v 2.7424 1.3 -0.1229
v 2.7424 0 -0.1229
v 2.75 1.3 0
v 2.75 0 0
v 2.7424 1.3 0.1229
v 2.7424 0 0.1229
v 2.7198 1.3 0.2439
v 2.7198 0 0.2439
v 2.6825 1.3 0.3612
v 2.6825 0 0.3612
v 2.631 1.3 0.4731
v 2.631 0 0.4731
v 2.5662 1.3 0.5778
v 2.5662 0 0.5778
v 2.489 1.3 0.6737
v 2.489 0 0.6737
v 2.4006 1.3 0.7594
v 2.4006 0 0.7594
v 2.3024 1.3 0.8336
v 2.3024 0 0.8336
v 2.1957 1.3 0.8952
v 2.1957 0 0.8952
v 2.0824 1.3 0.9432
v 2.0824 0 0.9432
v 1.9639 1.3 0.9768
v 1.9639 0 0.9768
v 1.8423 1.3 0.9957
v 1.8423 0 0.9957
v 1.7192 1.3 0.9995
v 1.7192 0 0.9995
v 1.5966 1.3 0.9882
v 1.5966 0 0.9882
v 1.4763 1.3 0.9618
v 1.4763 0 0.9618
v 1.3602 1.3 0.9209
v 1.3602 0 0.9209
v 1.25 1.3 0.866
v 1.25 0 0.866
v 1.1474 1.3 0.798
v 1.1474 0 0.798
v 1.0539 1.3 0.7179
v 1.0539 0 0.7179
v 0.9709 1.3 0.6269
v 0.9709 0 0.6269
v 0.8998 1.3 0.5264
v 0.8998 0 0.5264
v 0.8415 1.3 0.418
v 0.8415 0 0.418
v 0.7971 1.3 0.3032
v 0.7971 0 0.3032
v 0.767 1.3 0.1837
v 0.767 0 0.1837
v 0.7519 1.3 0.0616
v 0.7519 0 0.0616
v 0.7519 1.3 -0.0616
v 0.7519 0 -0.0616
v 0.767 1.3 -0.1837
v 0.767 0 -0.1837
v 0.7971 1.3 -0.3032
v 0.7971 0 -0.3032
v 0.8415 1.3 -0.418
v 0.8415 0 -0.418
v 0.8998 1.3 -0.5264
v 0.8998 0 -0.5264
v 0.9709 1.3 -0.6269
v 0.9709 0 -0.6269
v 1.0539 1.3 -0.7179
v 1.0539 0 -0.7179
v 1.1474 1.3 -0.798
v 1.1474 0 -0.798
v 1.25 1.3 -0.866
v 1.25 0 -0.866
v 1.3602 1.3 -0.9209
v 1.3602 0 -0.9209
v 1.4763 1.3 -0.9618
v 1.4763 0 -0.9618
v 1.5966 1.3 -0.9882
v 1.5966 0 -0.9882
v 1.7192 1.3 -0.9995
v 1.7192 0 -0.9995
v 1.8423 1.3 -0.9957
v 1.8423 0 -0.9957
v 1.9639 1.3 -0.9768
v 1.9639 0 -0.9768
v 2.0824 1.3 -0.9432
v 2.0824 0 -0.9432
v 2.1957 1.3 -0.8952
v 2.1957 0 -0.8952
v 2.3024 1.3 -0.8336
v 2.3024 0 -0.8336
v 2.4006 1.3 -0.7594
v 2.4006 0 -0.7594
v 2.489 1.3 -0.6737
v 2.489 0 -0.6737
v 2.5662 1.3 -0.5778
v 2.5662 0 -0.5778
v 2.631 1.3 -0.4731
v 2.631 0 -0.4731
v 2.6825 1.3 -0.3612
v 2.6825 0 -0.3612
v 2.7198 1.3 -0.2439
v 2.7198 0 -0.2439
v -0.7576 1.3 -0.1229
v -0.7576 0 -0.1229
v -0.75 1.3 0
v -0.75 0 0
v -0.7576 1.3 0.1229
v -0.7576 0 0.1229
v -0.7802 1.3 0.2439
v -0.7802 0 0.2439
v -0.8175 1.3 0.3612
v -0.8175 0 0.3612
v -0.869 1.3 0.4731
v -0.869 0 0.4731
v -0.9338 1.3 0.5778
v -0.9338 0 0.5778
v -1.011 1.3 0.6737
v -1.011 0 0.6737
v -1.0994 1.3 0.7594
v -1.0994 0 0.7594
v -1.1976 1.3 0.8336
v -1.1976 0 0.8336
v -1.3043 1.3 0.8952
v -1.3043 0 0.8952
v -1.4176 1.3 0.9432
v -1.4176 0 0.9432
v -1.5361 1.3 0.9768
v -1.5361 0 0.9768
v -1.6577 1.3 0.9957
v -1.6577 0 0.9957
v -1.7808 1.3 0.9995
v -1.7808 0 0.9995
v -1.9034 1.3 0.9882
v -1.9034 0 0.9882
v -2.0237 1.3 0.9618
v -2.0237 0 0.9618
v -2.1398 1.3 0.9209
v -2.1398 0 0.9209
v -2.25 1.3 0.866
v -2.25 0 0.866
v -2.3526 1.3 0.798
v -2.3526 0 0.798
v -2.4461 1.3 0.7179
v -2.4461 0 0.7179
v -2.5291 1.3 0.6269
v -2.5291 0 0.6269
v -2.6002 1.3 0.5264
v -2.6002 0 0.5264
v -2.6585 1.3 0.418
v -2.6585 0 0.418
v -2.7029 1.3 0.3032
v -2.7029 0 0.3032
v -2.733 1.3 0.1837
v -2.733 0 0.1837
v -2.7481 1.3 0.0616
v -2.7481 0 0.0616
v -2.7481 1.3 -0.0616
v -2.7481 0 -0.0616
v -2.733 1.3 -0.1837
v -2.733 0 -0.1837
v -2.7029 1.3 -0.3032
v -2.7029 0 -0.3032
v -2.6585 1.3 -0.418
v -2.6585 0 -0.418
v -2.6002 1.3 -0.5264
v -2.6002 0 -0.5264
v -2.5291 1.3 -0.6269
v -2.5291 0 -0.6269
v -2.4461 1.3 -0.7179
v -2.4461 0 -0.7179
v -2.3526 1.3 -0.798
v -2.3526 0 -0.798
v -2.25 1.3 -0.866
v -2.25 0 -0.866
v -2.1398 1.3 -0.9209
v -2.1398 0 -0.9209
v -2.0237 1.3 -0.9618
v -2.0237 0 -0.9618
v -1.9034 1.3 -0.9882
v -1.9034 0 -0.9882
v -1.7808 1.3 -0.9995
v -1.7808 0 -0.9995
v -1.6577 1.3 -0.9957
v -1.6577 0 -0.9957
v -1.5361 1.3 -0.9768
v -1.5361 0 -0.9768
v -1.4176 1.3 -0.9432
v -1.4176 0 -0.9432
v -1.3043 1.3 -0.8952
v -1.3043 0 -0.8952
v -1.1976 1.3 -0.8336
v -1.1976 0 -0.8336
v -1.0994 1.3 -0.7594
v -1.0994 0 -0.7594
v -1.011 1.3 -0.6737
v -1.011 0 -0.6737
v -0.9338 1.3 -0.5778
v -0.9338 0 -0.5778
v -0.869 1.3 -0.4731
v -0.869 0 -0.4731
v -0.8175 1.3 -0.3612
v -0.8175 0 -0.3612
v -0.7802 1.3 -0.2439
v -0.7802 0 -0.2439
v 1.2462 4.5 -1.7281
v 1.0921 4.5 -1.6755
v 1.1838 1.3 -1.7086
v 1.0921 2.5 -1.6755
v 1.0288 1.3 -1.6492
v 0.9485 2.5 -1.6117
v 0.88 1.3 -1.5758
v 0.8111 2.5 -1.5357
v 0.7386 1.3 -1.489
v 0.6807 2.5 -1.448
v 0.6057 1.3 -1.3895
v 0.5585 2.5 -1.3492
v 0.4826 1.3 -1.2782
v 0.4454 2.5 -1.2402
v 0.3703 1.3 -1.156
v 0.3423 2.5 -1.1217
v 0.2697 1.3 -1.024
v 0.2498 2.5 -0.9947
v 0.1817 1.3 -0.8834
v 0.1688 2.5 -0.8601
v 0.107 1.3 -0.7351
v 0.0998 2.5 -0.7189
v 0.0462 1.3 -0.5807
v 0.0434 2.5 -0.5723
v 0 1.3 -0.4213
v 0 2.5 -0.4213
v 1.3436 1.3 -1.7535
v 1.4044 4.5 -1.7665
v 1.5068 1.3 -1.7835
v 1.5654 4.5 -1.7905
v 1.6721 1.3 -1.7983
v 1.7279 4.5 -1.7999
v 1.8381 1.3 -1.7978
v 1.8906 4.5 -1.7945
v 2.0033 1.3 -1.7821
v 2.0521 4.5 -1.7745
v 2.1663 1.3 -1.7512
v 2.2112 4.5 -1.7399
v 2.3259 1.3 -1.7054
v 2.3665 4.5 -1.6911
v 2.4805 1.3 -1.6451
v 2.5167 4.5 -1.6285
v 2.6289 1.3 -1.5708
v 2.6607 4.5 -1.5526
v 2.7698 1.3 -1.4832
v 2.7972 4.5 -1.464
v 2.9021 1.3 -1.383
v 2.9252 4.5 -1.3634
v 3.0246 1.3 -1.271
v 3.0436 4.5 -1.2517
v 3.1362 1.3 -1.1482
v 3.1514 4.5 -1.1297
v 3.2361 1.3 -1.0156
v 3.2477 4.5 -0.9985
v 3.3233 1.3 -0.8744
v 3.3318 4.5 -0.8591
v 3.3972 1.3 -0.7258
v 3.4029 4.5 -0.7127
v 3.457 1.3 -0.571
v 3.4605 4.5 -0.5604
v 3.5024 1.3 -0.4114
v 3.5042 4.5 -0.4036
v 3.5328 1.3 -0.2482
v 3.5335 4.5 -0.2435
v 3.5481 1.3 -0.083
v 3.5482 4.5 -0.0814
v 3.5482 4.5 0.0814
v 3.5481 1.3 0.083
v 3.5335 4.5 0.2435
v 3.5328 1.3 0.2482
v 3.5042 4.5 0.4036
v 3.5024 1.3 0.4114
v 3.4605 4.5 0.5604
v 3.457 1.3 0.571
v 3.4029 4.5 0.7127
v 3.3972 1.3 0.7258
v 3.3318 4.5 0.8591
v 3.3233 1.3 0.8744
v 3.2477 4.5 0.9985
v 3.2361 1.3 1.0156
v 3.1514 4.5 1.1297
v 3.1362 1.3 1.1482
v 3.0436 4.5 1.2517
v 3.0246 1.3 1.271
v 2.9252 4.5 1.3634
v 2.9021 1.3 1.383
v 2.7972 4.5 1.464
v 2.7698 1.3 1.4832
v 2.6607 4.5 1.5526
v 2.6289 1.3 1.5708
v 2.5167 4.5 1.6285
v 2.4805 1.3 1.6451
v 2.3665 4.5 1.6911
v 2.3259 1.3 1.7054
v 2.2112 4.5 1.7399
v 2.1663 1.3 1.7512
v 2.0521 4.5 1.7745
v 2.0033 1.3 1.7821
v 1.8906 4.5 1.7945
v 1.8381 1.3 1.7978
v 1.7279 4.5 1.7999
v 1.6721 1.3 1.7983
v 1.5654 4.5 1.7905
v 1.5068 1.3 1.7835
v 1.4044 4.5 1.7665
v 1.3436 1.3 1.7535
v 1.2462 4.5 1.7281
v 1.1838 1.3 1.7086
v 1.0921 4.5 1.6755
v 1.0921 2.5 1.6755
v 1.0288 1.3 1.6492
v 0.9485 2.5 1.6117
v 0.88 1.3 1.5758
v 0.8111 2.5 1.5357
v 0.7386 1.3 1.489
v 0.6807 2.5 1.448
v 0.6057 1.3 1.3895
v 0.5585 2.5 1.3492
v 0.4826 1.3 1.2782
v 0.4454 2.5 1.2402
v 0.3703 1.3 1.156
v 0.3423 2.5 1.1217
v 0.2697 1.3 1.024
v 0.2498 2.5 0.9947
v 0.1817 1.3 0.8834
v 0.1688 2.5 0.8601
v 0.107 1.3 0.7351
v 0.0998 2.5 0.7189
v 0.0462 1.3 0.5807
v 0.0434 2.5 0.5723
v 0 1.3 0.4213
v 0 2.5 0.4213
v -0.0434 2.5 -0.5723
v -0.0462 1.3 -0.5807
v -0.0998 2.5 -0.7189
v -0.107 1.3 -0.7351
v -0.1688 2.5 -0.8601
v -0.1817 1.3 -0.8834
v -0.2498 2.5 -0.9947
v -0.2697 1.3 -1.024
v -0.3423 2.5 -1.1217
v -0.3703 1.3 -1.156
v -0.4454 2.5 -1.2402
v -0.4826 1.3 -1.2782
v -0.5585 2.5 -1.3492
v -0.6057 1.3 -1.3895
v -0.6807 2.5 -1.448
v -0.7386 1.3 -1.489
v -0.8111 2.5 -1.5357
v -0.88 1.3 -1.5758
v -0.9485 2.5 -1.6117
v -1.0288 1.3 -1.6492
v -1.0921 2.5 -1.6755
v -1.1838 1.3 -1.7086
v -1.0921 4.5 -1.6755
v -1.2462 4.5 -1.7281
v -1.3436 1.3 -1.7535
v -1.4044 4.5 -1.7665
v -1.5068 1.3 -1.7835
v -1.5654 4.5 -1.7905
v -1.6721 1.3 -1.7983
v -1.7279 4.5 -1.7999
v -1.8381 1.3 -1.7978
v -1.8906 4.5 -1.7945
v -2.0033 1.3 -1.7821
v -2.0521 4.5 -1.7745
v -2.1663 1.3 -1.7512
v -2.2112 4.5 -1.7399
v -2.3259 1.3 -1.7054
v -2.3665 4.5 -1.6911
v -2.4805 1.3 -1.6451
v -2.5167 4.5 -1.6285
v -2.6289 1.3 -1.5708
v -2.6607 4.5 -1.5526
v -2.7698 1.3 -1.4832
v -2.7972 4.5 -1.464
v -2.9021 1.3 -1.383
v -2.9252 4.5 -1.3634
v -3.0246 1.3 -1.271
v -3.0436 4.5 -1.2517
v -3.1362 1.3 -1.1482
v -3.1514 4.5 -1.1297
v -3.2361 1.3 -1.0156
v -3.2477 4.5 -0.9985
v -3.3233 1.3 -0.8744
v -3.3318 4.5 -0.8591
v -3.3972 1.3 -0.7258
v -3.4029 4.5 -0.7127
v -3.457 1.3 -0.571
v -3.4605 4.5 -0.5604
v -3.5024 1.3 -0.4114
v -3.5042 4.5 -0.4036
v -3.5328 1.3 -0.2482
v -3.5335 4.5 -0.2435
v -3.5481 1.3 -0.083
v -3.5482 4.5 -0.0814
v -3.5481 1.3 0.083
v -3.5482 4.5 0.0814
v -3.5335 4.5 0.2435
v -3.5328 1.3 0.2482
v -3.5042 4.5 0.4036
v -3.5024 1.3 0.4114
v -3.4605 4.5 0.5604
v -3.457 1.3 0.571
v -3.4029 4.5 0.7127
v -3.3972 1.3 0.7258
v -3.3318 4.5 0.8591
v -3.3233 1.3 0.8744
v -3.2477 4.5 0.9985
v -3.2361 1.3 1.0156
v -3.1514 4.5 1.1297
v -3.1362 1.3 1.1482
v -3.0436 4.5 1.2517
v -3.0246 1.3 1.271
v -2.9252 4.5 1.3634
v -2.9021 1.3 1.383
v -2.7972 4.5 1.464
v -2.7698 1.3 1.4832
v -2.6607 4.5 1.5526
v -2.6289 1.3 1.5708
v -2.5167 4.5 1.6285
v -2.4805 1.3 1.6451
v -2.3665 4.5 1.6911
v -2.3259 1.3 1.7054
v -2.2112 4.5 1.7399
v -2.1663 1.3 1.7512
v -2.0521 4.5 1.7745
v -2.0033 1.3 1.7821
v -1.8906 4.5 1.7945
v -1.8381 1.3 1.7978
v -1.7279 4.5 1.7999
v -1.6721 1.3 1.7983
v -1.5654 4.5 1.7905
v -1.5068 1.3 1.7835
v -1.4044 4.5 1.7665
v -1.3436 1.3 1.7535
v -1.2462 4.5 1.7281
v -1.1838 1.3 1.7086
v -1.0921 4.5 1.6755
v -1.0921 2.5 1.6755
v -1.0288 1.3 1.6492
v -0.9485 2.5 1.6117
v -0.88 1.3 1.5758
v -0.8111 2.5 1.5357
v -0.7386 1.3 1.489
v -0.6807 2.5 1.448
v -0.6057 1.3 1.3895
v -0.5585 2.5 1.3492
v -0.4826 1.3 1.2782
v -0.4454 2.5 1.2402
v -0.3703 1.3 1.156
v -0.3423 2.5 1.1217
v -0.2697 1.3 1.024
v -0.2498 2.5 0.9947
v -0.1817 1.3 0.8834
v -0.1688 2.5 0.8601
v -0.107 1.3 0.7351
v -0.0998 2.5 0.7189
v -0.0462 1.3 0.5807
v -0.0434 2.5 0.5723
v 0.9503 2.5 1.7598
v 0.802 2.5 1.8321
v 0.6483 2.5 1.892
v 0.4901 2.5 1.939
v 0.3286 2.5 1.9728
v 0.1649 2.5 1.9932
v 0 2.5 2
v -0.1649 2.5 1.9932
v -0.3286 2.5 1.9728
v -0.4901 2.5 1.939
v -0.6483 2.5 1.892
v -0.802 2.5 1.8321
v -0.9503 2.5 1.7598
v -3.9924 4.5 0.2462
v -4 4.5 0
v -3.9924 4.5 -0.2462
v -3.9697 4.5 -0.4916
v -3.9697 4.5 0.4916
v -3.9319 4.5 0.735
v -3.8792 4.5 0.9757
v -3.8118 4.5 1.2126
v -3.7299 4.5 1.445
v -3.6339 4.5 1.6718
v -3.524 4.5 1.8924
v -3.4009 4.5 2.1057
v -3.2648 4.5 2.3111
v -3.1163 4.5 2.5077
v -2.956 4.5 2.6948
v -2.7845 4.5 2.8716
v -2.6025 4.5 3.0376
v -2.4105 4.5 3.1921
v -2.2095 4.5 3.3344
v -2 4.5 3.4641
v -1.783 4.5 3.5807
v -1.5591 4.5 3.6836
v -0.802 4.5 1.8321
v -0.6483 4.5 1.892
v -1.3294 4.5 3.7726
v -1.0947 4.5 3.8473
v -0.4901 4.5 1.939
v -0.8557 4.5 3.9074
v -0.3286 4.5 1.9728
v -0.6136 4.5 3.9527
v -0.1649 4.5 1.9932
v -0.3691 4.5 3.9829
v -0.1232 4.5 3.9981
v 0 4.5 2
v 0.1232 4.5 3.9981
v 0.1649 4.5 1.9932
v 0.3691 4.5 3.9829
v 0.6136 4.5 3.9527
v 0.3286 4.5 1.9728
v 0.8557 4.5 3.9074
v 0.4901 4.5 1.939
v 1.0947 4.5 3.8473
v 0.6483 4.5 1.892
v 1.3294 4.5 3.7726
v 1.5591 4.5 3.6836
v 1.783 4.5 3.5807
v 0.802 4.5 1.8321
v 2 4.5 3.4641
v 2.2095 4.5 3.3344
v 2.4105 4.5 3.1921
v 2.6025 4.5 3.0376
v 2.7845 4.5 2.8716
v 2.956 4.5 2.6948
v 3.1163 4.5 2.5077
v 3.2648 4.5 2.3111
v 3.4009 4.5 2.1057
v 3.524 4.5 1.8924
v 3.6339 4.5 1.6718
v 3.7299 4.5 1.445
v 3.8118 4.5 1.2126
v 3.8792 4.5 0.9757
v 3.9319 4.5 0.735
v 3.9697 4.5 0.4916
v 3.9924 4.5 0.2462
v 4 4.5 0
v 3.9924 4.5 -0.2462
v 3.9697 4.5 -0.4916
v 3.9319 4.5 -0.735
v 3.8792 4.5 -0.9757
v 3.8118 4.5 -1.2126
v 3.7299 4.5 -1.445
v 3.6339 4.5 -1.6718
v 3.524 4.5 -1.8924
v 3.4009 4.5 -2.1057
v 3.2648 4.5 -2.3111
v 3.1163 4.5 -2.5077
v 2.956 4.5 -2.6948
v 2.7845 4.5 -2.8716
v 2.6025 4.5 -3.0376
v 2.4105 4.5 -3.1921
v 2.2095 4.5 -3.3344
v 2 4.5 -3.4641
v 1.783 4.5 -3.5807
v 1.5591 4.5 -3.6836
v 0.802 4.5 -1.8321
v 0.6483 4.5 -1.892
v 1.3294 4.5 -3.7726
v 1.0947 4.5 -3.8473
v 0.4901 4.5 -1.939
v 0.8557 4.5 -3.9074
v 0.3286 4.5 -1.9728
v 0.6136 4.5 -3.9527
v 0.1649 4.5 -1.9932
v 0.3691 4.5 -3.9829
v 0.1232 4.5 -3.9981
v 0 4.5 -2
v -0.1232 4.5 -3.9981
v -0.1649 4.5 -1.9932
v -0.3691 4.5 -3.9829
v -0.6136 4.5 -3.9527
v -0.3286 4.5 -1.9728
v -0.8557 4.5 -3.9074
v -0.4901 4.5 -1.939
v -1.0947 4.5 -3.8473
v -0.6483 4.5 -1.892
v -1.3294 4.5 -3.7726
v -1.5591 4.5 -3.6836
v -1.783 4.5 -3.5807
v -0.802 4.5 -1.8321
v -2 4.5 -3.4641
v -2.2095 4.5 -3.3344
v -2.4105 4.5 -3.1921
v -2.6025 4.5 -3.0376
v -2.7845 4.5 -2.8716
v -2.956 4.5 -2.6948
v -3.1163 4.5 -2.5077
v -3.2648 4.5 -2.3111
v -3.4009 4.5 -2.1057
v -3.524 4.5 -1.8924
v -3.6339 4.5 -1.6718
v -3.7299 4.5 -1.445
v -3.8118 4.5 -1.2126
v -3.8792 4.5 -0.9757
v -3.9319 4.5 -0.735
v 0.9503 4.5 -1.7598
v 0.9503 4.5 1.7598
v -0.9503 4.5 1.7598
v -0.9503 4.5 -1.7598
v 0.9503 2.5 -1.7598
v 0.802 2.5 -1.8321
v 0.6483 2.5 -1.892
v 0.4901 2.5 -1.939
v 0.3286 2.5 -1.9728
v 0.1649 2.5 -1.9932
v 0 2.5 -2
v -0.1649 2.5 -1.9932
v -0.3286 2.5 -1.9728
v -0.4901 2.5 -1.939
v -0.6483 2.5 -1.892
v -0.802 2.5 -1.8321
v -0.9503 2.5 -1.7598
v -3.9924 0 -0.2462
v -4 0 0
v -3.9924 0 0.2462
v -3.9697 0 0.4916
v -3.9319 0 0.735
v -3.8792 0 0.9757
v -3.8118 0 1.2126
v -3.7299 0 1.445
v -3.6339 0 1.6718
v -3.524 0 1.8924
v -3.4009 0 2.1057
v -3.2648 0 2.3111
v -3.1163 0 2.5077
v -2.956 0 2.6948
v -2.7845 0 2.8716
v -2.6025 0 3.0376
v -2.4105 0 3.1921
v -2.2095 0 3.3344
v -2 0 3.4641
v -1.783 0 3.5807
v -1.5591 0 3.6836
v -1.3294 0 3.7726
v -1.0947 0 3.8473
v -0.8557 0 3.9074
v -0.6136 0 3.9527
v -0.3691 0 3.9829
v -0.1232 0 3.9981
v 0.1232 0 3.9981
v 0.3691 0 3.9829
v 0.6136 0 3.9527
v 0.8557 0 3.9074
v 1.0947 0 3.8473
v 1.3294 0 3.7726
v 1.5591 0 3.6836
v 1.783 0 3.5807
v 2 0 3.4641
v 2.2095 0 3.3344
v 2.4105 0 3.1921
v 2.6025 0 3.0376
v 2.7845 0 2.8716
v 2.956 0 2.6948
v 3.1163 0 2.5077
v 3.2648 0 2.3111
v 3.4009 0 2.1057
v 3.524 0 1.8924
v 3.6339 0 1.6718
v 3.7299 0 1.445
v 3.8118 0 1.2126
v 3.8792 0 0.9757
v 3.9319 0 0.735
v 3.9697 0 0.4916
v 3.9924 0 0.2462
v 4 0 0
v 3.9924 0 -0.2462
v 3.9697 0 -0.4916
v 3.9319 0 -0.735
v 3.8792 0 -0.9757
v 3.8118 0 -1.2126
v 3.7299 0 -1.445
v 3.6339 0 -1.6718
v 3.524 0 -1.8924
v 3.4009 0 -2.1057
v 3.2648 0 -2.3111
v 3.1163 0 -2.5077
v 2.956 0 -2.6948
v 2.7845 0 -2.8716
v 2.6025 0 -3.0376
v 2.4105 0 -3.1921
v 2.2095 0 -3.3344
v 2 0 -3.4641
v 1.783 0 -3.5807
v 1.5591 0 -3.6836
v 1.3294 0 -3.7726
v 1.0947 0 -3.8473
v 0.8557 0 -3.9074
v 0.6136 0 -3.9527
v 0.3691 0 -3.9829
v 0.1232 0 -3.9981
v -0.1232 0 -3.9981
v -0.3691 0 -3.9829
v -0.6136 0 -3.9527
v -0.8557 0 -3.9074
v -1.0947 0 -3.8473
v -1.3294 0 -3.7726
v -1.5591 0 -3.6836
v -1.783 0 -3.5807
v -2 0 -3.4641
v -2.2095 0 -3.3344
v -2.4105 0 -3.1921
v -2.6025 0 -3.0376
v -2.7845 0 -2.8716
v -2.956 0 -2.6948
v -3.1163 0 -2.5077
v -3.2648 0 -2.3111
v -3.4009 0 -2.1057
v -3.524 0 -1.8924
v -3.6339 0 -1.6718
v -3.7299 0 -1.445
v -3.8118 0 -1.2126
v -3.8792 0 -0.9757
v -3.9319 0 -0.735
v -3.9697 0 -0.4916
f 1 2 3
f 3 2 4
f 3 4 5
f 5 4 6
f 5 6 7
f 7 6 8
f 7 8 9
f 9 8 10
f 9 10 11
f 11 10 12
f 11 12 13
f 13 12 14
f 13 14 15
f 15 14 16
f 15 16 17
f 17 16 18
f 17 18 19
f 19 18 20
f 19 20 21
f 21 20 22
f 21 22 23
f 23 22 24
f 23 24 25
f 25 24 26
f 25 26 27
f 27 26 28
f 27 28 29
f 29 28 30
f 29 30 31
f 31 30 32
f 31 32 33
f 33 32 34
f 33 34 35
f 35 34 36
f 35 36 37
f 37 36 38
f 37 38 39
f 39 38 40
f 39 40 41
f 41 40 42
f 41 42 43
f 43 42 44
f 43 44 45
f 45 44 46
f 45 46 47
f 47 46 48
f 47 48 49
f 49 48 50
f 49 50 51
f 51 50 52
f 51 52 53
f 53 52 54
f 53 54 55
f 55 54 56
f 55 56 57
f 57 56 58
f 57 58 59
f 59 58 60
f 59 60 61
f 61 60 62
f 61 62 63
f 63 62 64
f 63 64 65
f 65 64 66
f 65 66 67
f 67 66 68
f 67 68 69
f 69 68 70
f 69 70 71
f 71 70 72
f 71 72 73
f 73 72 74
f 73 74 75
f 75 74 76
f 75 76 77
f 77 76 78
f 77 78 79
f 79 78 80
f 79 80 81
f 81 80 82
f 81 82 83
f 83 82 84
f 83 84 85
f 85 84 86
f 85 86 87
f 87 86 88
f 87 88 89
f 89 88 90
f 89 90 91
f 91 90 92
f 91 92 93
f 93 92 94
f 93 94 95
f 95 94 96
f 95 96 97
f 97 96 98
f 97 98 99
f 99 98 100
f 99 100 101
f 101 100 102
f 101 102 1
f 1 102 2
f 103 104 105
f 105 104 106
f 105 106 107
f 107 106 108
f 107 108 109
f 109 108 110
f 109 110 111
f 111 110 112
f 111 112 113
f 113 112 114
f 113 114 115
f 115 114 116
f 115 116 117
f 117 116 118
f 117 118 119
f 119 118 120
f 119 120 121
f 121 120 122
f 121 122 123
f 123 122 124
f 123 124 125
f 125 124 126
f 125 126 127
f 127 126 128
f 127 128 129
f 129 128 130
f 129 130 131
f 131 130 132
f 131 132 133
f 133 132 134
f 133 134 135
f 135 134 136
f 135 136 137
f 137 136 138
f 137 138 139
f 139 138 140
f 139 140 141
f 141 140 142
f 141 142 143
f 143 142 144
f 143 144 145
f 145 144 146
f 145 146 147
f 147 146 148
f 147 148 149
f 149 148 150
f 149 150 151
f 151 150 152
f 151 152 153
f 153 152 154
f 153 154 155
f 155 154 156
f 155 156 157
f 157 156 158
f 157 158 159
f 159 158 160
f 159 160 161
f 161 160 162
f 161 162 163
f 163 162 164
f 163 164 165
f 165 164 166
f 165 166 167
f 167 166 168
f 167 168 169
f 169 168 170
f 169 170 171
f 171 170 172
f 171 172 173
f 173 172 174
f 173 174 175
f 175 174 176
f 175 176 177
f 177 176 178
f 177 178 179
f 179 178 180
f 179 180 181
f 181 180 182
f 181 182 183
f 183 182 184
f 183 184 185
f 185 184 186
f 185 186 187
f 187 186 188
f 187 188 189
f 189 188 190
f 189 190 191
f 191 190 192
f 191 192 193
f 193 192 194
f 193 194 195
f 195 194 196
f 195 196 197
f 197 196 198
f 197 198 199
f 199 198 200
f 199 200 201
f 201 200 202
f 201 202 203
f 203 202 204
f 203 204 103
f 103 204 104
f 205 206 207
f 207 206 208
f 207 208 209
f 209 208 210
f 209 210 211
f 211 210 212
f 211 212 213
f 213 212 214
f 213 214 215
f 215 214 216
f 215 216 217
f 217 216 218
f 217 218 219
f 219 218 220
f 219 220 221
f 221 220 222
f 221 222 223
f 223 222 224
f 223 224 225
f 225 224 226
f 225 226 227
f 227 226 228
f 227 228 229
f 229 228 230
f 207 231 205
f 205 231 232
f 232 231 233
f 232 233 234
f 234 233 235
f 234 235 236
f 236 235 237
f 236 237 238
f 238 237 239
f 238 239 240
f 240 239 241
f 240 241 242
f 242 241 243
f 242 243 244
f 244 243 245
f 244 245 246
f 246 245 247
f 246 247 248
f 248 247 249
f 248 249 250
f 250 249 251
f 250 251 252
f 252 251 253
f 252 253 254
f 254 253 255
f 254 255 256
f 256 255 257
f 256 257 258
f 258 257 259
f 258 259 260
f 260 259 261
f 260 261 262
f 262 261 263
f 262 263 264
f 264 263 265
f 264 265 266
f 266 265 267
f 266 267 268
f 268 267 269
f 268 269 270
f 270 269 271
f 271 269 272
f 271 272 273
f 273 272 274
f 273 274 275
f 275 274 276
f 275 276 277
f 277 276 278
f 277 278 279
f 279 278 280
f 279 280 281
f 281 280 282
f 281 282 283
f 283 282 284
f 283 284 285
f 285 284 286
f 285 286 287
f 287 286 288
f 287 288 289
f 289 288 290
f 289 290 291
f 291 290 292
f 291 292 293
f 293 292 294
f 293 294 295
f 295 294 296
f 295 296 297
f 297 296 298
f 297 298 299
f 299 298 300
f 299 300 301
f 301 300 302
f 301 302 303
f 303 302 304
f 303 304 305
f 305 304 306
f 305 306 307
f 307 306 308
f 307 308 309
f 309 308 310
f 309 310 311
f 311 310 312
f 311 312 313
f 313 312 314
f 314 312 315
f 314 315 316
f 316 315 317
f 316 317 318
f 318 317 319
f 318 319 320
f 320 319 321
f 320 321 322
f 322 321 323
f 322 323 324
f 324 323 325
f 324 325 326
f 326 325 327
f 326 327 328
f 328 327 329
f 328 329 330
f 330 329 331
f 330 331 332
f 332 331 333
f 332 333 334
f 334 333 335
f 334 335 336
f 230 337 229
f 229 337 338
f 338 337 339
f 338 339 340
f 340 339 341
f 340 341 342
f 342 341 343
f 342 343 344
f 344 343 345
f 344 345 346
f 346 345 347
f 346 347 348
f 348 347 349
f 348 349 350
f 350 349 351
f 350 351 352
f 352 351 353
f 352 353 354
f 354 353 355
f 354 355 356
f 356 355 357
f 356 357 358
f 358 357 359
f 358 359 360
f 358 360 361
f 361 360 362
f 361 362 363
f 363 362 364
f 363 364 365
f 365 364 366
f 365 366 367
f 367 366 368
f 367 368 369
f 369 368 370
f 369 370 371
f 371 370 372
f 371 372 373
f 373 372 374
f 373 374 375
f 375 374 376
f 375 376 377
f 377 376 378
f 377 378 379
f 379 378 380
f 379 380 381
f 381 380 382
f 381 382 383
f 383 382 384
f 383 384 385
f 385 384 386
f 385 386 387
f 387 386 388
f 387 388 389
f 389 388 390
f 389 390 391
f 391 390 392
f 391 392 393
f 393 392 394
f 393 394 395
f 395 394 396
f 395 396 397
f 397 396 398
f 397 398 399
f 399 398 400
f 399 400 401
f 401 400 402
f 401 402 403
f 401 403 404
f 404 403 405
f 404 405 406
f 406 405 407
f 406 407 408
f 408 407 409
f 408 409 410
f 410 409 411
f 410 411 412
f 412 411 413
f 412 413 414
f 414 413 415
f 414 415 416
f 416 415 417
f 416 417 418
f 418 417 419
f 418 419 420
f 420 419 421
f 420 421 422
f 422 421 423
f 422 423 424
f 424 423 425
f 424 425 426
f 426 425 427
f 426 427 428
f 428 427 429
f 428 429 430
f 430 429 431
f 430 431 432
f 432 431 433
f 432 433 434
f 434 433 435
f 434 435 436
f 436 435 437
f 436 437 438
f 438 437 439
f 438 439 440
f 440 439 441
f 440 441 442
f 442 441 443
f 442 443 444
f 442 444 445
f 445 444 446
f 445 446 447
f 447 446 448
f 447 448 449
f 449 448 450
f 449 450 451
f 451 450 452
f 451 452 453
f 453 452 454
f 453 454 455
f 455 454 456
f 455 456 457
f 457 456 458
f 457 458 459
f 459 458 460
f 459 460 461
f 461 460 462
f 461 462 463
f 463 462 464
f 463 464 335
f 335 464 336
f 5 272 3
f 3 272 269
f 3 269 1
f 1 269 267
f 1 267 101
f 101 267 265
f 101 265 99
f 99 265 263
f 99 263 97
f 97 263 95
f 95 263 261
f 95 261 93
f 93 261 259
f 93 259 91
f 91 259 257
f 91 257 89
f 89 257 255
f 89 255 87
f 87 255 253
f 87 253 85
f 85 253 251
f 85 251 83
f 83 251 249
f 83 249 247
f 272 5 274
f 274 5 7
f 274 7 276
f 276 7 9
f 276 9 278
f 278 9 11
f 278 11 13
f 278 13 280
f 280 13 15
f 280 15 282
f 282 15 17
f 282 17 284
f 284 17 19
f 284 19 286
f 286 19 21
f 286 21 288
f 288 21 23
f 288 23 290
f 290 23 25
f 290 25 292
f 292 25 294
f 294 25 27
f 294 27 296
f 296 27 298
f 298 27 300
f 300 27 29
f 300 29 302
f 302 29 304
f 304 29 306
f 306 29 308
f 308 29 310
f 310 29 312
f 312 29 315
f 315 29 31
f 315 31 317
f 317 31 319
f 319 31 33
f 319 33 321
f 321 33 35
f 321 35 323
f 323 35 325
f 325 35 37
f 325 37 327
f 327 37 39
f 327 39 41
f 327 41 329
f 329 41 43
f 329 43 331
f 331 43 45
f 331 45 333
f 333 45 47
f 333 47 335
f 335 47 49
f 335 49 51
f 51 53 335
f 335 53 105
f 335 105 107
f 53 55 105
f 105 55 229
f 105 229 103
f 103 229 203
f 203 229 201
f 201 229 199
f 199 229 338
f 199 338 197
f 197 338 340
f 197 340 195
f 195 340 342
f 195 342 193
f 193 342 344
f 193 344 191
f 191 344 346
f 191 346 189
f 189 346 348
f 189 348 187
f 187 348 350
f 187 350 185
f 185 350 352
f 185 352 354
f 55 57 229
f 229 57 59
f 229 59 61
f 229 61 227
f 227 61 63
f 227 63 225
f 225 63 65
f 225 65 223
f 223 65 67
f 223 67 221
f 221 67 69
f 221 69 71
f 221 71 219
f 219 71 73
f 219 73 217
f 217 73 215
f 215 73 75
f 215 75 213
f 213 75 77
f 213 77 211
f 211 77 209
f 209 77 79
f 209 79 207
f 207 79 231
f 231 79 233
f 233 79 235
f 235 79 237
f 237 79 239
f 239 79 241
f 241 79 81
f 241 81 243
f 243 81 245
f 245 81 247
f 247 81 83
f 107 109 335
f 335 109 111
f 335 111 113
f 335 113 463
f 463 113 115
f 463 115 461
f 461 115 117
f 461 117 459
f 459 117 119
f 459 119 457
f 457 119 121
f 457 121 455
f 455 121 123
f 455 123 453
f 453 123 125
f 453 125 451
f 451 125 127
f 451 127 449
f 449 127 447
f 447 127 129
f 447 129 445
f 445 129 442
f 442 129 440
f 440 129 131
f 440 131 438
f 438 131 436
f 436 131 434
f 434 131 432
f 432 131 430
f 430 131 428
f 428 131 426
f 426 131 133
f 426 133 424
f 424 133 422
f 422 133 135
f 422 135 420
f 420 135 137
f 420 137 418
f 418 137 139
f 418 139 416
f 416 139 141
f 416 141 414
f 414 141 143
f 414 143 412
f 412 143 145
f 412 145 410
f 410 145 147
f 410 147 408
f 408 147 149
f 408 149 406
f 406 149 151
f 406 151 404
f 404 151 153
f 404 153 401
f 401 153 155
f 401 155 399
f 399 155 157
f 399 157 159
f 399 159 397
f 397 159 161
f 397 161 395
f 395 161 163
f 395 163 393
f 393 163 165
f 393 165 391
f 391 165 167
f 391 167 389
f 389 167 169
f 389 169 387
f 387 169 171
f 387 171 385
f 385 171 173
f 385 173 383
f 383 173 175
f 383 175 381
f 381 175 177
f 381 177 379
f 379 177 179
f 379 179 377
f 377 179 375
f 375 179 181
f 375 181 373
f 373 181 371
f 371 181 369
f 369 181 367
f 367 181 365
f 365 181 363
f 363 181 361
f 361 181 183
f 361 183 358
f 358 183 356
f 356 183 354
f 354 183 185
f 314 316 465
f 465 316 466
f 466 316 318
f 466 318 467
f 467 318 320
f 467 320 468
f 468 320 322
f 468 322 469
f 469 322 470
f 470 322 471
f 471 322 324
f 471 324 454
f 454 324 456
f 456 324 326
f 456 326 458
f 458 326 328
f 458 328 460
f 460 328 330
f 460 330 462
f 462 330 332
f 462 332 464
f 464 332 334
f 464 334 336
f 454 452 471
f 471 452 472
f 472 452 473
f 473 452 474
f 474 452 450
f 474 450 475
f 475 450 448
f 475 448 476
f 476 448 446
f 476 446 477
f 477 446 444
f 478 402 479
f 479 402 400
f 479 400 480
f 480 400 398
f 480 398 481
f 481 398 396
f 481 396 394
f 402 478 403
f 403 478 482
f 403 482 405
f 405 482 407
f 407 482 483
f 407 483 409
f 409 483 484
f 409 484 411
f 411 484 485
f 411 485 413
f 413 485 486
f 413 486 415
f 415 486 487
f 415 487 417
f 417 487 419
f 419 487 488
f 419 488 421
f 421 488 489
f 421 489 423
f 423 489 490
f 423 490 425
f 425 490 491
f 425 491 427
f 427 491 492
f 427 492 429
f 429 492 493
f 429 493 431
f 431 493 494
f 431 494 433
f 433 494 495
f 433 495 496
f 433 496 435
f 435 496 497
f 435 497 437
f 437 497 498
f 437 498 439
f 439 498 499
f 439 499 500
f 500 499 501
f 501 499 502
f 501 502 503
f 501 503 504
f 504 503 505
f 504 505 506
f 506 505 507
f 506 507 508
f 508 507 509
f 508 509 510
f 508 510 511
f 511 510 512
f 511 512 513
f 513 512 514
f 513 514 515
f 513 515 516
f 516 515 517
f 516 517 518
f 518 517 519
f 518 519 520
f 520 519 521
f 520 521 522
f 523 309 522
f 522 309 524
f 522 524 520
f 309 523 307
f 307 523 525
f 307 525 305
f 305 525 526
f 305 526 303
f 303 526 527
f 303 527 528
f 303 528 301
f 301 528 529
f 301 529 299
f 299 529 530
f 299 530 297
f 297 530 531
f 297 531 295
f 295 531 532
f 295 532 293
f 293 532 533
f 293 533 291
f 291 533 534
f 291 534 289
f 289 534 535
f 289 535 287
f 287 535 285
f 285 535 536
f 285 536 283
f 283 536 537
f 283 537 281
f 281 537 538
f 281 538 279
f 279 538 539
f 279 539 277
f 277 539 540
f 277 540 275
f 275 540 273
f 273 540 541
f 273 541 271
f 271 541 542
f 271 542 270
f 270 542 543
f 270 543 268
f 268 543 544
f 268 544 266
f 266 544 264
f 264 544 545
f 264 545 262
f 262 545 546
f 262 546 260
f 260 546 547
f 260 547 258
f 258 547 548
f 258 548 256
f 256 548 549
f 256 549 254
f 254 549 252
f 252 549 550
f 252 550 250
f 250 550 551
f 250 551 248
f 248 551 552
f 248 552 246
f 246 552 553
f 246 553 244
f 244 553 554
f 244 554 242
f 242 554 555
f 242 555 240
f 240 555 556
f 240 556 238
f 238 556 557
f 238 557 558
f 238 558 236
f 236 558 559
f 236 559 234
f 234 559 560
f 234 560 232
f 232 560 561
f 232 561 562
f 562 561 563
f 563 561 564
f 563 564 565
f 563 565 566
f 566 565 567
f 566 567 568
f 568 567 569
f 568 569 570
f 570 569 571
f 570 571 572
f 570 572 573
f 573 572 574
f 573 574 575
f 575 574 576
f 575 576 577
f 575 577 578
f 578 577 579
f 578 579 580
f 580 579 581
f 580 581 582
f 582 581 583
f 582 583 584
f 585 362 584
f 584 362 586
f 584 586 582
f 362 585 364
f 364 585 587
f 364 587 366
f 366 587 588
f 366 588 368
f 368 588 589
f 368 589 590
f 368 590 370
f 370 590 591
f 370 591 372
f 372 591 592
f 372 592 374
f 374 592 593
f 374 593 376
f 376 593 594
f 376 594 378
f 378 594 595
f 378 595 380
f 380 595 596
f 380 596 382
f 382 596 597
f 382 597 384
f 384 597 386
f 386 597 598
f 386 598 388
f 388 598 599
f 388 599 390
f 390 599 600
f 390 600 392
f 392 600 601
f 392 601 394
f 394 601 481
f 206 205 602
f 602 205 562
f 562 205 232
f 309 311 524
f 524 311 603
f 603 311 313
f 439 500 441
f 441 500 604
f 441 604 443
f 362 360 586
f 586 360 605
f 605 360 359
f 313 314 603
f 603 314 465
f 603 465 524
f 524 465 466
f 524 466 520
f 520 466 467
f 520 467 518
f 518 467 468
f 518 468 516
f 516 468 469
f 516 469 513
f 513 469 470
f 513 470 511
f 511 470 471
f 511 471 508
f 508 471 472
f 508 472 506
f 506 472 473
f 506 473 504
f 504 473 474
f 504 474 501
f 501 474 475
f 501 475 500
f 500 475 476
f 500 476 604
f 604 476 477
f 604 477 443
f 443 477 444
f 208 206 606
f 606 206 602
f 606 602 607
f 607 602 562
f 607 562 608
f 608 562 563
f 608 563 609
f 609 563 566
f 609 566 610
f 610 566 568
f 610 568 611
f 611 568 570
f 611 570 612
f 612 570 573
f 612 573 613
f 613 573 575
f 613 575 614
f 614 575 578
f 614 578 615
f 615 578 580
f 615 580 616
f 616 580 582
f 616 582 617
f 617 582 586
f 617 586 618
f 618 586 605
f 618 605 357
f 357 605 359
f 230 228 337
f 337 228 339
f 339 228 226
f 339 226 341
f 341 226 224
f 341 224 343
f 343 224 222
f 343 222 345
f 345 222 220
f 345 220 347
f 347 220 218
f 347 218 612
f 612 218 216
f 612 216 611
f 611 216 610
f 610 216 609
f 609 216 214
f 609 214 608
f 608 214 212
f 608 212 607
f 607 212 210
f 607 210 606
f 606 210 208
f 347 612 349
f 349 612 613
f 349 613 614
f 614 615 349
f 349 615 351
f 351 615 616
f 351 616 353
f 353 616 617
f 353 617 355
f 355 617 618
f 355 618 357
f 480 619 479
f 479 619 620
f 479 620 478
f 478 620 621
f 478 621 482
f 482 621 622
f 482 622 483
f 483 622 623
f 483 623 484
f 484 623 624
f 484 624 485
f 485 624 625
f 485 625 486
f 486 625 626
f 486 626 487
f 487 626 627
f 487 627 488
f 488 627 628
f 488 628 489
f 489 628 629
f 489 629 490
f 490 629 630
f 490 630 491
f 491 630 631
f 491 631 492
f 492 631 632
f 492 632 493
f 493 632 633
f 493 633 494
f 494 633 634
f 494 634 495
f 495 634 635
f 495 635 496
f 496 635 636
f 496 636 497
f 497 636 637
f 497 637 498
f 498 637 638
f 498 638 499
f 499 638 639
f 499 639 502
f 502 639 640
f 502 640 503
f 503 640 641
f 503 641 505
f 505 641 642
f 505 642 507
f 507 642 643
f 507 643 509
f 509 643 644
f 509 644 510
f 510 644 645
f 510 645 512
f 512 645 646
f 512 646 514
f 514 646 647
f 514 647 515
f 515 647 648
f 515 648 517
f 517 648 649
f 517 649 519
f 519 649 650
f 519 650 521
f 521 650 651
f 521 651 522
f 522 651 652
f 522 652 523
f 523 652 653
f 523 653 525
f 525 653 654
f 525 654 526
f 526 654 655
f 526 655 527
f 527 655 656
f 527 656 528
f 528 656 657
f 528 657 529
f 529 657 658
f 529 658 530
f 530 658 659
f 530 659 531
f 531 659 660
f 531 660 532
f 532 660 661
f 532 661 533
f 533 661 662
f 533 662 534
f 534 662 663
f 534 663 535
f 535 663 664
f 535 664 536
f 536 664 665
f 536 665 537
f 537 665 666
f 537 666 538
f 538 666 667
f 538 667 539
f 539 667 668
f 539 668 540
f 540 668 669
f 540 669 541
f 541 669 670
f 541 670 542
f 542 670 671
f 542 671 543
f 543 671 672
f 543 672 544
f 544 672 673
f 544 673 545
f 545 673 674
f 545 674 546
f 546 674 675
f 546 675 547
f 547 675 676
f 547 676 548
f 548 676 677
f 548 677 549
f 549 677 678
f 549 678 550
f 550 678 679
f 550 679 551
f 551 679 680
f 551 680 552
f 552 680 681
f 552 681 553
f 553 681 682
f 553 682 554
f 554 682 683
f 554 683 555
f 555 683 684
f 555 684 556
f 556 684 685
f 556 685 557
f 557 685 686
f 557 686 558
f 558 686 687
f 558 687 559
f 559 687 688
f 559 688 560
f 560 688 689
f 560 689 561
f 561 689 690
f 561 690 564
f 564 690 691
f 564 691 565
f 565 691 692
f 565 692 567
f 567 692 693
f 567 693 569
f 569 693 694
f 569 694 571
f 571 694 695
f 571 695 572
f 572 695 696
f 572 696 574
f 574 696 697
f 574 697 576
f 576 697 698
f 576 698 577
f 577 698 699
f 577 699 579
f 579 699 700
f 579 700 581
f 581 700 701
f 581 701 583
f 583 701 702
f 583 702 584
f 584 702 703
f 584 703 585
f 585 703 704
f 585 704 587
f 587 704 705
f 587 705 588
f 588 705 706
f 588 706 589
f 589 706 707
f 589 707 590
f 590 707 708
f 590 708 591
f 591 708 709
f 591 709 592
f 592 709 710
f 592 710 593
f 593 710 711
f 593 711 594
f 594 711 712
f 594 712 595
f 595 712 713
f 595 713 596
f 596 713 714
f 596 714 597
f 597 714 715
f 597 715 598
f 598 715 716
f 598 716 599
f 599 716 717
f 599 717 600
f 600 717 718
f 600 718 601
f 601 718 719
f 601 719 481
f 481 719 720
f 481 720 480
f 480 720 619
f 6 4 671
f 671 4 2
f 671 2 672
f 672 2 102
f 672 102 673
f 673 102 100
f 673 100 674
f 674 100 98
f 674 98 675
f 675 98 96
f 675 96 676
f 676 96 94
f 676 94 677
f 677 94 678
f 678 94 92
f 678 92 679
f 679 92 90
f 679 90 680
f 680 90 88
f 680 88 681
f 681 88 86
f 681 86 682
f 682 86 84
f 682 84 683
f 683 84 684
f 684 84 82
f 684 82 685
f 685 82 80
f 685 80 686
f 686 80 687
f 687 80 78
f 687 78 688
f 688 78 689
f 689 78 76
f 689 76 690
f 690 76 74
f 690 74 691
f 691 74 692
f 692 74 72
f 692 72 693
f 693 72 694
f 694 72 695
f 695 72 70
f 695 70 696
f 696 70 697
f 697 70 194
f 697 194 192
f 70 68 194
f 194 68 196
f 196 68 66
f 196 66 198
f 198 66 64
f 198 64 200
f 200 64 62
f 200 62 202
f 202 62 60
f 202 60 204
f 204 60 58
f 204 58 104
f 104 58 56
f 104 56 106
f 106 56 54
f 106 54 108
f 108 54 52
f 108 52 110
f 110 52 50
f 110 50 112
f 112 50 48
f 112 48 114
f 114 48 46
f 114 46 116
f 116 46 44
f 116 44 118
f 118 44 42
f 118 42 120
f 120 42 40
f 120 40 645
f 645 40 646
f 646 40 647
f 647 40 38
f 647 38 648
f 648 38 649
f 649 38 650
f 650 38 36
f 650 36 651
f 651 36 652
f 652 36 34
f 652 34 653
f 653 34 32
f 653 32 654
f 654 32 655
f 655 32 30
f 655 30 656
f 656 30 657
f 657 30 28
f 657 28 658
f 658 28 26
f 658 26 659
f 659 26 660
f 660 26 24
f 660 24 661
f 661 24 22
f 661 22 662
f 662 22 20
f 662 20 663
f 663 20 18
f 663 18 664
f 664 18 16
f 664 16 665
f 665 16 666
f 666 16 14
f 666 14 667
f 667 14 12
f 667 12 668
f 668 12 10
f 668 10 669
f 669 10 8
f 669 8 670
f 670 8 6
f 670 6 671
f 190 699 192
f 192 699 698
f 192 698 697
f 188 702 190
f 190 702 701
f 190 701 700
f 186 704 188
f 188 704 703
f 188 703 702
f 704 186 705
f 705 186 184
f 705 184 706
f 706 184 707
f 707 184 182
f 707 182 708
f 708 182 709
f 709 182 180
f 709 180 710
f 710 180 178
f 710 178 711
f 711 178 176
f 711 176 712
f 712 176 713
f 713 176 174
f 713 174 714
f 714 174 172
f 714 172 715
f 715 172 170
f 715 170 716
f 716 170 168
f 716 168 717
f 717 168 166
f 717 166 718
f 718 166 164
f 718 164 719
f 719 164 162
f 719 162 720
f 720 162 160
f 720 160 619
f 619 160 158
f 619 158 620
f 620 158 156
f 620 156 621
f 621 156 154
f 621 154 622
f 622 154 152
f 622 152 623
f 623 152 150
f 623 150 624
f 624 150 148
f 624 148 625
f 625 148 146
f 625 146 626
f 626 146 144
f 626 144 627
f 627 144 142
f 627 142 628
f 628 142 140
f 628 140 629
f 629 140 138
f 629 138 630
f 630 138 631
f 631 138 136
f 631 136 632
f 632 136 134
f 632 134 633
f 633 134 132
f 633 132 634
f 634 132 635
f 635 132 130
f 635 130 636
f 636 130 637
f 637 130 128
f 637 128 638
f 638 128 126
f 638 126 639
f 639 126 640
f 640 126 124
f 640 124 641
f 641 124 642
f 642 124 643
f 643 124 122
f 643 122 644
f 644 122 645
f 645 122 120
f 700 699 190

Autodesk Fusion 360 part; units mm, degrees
sketch "草图1" plane through (0, 0, 0) normal (0, 1, 0) x (1, 0, 0)
  circle A0 centre (0, 0) radius 4
  dimension "d1" = 8
extrude "拉伸1" add sketch "草图1" along normal blind 4.5
sketch "草图2" plane through (0, 4.5, 0) normal (0, 1, 0) x (-1, 0, 0)
  circle A0 centre (0, 0) radius 4
  circle A1 centre (0, 0) radius 2
  dimension "d4" = 4
extrude "拉伸2" cut sketch "草图2" against normal blind 2 contours A1
sketch "草图3" plane through (0, 4.5, 0) normal (0, 1, 0) x (-1, 0, 0)
  circle A0 centre (0, 0) radius 2
  circle A1 centre (0, 0) radius 4
  circle A2 centre (1.75, 0) radius 1.8
  circle A3 centre (-1.75, 0) radius 1.8
  dimension "d7" = 3.6
  dimension "d8" = 3.6
  dimension "d9" = 3.5
extrude "拉伸3" cut sketch "草图3" against normal blind 3.2 contours A0 A2 A3 | A0 A2 | A0 A2 A3 | A0 A3 | A2 A3 picked at (0.6739, -0.4996) picked at (-0.6772, -0.4762)
sketch "草图4" plane through (0, 4.5, 0) normal (0, 1, 0) x (-1, 0, 0)
  circle A0 centre (1.75, 0) radius 1
  circle A1 centre (-1.75, 0) radius 1
  dimension "d12" = 2
  dimension "d13" = 2
extrude "拉伸4" cut sketch "草图4" against normal blind 6.5
